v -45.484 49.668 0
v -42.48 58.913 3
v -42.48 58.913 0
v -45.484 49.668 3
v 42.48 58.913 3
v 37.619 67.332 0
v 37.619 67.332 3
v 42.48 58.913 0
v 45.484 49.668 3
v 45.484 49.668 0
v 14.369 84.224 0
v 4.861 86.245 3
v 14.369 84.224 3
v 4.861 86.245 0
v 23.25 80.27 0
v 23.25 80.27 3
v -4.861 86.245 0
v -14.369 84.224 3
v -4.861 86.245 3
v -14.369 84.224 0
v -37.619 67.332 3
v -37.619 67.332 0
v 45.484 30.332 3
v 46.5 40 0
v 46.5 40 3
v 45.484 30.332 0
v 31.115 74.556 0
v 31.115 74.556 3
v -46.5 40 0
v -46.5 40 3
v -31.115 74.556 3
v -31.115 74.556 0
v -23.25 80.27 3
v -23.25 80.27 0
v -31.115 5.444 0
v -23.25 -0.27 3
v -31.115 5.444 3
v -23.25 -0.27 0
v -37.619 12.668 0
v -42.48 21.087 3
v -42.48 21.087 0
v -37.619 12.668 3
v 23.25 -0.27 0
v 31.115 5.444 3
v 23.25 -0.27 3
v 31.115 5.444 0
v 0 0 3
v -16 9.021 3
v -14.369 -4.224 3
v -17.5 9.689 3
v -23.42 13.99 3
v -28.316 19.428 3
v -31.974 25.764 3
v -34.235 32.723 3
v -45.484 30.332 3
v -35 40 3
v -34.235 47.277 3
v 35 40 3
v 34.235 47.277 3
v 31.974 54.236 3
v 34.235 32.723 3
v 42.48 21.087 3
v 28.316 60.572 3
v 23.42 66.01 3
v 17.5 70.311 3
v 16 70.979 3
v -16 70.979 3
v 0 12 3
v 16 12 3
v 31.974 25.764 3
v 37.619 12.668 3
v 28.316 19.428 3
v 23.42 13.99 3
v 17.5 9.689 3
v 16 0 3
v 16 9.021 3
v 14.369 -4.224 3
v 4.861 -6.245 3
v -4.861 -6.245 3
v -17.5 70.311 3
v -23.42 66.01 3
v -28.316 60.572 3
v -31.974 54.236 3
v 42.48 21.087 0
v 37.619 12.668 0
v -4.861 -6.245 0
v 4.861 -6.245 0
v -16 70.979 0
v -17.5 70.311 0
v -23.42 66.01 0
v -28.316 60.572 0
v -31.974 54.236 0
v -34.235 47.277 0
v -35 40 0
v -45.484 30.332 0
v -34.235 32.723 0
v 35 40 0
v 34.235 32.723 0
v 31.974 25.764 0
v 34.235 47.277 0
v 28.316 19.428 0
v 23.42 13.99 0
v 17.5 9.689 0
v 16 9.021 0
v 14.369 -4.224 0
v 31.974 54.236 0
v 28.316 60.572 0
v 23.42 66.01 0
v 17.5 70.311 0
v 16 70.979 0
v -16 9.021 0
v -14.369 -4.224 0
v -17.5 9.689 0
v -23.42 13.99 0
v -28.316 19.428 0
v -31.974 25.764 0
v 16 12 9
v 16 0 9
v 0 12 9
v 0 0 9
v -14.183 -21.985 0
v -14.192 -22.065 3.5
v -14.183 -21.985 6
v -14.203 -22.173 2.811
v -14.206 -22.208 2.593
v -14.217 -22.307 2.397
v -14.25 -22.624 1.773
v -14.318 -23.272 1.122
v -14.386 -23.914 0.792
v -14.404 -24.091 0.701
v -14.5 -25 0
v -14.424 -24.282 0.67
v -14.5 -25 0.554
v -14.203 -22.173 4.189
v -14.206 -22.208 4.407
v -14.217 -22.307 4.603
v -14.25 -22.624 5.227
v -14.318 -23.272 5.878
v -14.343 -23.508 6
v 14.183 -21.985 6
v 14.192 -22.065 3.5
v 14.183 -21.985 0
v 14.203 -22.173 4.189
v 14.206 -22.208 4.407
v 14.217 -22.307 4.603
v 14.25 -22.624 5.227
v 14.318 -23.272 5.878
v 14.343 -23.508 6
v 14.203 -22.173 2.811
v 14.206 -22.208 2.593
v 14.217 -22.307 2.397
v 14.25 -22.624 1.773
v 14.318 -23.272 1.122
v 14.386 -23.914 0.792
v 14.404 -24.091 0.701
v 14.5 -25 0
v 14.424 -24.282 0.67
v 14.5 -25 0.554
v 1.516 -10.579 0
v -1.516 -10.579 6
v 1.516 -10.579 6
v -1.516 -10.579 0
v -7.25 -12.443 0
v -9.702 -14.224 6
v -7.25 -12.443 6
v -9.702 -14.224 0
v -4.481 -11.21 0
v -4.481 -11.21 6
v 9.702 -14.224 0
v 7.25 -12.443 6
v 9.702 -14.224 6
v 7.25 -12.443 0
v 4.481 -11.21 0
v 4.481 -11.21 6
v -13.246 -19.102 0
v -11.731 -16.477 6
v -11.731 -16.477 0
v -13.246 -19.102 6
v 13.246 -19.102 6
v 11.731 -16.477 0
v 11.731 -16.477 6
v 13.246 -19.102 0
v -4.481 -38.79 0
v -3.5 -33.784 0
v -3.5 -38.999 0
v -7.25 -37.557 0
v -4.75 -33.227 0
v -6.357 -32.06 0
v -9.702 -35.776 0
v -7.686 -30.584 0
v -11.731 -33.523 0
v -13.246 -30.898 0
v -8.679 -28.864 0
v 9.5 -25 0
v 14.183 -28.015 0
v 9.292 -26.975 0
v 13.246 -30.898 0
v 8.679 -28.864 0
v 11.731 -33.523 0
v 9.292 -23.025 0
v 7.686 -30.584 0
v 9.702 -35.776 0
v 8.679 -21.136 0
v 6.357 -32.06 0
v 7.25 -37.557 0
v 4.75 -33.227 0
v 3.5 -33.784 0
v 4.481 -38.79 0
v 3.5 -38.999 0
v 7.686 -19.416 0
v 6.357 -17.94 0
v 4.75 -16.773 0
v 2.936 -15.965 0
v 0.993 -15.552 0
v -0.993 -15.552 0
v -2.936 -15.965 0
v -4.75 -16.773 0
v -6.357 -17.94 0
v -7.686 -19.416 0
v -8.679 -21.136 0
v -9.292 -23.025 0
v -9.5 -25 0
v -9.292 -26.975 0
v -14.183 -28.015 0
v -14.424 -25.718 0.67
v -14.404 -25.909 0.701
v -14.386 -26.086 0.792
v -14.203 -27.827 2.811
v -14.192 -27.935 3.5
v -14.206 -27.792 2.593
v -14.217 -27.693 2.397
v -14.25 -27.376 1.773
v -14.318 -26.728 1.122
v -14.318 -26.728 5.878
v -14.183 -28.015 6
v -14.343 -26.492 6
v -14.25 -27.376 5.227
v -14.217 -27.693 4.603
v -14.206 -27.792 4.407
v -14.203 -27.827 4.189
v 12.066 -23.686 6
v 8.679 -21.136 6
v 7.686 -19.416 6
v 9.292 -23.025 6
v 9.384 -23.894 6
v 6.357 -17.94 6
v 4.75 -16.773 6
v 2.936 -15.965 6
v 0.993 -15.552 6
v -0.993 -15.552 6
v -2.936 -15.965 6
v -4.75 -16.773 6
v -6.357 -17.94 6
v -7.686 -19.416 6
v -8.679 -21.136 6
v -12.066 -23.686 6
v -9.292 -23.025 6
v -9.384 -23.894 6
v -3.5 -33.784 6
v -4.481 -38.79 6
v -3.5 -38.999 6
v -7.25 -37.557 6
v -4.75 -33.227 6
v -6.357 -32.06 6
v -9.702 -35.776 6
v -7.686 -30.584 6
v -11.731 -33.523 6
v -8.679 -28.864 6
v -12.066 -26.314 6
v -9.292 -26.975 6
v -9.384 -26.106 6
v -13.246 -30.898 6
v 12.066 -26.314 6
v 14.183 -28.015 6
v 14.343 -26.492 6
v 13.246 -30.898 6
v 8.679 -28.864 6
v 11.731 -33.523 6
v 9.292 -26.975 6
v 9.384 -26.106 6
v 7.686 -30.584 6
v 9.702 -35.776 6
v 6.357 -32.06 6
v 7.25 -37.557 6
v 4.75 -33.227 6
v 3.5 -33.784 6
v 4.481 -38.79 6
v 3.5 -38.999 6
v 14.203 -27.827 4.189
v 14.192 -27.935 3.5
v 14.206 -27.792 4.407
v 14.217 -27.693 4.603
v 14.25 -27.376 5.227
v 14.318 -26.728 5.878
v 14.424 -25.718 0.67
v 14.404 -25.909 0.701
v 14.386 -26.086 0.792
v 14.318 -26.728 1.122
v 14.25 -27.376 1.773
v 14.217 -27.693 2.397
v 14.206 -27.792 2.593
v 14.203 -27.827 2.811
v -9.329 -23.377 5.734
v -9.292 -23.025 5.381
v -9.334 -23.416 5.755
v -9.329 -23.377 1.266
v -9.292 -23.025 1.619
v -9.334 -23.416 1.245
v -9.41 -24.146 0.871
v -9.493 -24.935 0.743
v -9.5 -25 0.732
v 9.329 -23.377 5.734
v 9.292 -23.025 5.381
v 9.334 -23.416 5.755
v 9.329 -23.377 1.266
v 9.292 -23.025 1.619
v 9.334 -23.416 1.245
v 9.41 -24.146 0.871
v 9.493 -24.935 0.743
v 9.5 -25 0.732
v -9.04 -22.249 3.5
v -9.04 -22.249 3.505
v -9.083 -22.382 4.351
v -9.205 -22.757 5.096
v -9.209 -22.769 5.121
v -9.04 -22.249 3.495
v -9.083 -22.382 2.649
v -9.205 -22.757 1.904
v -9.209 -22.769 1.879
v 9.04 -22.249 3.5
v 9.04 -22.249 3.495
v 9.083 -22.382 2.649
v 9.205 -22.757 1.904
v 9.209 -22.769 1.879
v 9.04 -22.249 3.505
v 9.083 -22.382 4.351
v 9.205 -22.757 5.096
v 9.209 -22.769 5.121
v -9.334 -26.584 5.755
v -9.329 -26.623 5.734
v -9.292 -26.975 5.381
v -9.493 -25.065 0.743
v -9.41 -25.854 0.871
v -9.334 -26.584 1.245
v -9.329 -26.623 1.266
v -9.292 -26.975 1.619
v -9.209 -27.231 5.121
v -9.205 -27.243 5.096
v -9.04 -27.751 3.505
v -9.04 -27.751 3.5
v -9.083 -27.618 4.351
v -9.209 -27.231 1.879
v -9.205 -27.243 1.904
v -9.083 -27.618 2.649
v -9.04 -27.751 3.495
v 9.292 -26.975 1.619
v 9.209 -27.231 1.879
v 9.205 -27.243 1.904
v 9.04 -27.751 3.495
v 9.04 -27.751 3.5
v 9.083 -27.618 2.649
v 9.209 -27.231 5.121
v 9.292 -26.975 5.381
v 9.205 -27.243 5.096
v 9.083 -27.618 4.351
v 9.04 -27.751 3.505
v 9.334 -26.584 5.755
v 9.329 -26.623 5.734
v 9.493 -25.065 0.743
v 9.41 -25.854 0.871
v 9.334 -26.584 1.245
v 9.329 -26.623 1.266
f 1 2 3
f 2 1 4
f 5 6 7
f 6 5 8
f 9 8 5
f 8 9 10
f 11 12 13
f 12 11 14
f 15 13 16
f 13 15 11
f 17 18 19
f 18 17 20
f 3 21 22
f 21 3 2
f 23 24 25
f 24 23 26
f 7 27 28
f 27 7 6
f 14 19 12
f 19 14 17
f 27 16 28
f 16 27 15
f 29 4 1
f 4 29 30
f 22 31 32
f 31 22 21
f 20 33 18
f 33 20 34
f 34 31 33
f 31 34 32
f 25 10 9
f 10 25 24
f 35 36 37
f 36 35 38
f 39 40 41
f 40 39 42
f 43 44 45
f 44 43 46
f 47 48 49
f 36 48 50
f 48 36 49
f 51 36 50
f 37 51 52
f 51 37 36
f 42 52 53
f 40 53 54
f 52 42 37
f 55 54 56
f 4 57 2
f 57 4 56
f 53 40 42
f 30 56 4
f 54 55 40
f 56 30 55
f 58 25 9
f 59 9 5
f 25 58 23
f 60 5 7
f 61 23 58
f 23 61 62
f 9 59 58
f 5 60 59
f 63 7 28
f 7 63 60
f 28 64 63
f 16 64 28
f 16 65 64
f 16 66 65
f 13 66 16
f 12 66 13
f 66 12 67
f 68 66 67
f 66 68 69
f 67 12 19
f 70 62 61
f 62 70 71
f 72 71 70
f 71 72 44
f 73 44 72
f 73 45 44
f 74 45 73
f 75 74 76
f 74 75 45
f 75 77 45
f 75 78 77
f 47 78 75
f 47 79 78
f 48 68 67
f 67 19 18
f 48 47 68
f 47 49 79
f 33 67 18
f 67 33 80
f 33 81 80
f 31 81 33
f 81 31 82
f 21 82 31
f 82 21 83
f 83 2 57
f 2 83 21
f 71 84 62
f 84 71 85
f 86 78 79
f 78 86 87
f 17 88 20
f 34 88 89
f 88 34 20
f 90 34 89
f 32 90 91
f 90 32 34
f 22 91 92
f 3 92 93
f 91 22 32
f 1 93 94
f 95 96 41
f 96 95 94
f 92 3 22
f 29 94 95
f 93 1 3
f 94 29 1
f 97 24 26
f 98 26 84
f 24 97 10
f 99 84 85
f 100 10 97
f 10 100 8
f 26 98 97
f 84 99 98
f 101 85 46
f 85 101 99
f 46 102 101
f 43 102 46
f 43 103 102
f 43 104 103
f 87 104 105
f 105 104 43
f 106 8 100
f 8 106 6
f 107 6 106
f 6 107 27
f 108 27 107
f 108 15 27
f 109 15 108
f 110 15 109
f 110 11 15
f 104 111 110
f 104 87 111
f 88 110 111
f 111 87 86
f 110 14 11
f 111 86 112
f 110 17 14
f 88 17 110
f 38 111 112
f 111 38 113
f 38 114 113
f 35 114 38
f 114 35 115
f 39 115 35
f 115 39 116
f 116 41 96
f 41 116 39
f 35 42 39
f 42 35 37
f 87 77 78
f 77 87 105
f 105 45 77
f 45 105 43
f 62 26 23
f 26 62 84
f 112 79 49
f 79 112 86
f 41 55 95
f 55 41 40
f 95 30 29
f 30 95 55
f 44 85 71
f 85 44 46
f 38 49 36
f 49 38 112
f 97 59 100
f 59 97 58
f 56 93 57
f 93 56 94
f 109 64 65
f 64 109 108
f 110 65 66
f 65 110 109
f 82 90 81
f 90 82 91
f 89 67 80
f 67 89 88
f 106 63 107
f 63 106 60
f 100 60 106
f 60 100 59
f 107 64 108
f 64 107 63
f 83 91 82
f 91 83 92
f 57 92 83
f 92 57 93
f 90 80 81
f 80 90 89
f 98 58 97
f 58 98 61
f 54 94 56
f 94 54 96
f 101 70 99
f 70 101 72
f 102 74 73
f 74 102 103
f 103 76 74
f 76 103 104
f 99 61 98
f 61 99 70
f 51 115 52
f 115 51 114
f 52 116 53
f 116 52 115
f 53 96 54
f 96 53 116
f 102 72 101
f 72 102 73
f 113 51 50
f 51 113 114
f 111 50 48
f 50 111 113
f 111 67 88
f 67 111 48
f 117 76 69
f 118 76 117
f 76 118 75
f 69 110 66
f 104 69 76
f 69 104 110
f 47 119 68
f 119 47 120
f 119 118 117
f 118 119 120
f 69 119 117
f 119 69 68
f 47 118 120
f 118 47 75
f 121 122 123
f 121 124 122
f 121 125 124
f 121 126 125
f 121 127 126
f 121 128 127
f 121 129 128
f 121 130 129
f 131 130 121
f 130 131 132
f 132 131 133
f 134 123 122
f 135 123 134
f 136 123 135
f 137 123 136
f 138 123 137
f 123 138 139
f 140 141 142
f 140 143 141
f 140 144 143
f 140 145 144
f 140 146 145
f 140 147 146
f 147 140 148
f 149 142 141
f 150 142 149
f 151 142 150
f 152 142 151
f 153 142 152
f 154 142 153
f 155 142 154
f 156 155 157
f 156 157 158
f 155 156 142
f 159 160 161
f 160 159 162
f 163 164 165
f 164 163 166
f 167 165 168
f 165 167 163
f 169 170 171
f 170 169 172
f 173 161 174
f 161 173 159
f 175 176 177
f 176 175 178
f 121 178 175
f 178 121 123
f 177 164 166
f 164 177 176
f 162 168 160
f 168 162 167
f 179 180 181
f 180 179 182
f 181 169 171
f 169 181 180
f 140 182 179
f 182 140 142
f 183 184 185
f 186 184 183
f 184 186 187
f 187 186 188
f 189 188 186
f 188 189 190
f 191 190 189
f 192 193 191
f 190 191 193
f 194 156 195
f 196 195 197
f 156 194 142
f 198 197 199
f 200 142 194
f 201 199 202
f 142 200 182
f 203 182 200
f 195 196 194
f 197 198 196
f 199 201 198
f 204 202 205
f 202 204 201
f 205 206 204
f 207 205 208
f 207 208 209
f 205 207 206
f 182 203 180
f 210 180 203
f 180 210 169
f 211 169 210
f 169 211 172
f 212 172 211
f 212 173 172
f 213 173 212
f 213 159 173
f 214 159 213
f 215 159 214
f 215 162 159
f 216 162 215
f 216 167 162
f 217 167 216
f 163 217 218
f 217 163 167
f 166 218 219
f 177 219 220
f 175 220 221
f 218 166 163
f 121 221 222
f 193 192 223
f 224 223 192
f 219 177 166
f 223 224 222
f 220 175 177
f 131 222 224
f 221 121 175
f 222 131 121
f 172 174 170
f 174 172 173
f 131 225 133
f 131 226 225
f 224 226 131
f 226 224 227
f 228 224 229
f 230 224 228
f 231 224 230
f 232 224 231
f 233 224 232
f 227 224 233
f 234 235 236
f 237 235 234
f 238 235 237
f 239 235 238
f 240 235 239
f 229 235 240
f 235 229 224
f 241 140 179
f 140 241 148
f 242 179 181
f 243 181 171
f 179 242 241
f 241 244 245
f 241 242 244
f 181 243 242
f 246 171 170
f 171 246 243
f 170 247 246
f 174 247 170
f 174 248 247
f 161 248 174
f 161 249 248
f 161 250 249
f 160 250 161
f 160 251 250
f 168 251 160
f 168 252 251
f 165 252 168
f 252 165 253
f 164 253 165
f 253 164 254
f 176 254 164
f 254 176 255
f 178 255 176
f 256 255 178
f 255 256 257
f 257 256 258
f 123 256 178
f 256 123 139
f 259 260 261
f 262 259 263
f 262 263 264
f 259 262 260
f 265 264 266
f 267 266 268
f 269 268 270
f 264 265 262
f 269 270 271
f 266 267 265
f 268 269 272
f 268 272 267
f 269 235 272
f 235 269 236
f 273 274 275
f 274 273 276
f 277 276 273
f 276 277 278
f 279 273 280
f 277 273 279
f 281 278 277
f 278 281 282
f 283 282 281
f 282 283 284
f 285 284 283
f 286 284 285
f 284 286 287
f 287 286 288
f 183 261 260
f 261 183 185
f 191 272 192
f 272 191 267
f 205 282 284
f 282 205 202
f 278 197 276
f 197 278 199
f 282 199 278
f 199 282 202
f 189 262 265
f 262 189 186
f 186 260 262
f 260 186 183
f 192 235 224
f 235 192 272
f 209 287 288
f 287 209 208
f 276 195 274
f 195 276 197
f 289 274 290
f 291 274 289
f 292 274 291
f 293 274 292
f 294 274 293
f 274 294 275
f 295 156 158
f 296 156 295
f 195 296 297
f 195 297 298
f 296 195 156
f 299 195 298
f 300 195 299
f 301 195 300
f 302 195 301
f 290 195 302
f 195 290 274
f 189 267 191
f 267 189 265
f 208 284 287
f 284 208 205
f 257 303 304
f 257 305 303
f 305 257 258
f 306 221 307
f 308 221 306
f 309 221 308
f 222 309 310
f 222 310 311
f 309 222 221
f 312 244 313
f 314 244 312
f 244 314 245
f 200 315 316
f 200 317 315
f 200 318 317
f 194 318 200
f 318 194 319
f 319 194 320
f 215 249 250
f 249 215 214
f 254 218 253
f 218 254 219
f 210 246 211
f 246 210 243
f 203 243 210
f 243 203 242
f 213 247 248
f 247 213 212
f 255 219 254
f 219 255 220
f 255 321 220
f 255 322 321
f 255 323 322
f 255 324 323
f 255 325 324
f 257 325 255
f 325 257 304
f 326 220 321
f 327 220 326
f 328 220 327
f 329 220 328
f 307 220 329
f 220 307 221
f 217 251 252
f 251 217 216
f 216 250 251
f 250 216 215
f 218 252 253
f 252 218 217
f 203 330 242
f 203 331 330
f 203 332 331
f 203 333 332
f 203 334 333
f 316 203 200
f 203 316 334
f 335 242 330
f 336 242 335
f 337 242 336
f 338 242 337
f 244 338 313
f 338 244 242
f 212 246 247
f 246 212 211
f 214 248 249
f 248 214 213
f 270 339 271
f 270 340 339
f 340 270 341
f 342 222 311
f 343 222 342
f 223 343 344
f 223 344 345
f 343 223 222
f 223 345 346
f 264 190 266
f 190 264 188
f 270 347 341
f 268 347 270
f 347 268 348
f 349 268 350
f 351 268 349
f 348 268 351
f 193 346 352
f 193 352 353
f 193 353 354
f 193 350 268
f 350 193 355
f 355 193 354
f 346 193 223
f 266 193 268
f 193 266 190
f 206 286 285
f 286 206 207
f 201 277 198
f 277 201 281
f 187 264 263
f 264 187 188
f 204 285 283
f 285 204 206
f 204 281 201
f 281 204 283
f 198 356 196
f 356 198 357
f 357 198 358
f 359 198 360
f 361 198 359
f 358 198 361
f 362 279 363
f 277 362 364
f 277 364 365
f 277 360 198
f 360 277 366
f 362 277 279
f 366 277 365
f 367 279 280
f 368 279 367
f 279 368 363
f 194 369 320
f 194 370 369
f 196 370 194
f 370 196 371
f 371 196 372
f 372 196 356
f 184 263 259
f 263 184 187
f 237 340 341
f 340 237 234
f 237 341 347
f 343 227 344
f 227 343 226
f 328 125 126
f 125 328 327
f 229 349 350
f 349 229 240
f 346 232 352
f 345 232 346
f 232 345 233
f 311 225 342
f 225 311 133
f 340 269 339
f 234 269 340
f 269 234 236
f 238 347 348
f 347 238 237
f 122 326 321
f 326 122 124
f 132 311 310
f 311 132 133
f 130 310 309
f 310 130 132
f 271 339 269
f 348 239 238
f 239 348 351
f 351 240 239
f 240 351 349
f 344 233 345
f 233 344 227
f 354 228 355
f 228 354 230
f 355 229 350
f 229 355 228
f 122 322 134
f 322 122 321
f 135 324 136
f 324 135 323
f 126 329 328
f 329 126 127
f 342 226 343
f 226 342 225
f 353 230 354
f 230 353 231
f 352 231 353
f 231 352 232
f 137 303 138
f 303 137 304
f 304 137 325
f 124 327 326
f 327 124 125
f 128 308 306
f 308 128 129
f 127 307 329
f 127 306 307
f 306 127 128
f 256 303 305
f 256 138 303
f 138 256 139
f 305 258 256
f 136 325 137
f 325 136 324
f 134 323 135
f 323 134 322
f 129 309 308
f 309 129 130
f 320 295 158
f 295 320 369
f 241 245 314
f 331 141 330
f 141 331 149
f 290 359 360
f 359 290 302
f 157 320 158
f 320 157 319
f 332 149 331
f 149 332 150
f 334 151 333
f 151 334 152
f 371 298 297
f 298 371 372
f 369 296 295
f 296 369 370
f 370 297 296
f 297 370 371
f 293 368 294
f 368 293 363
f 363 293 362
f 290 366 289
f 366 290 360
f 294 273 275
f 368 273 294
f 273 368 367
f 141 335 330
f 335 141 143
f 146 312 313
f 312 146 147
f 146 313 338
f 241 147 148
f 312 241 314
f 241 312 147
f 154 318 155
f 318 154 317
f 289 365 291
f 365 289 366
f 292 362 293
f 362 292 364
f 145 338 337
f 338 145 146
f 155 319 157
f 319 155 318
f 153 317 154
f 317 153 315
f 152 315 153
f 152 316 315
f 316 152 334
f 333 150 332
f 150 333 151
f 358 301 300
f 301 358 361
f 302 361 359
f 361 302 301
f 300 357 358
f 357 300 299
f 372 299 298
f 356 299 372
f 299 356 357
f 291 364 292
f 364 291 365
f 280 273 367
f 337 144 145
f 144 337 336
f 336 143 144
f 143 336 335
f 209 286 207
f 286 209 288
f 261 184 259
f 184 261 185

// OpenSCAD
// servo

module servo(){
cube([12, 24, 24]);

translate([0, -4.15, 16])
    cube([12, 32.3, 2.4]);
    

translate([6, 6, 0])
    cylinder(32, 3, 3);
    

translate([3, 3, 30])
    cube([14, 6, 2]);
}



/*
translate([16, 0, 34])
rotate([270,0,90]) 
    servo();
*/


// servoHolder;

// cup
/*{translate([0, 50, 0])
difference(){
cylinder(71, d1 = 55, d2 = 93); 
cylinder(72, d1 = 53, d2 = 91); 
}*/


module servoStand(){
union(){
    // servo stand
     {cube([16,12, 5+4]);}

    // baseplate
    union(){
    translate([0, 40, 0])
        difference(){
        cylinder(3, d1 = 93, d2 = 93); 
        cylinder(5, d1 = 70, d2 = 70);}

    translate([32/2, -3, 0])
        rotate([0,0,90])
        cube([86, 32, 3]);
        
    }}}
servoStand();
    

// cover
/*
translate([0, 40, 0])
difference(){
    // outer diameter
    cylinder(40, d1 = 93, d2 = 93); 
    // inner dia.
    cylinder(55, d1 = 91, d2 = 91);
}
*/
    
// IR photogate -- glue to bottom of cup lid


// cut out 3mm rad circles
module photogateHolder(){
    union(){
difference(){
translate([0, 0, 50]){
    difference(){
        difference(){
    cylinder(6, d1 = 29, d2 = 29);
    cylinder(7, d1 = 19, d2 = 19);
    }
    
    translate([9, 0, 2.5])
    rotate([0, 90,0])
    cylinder(7, d1 = 5.5, d2 = 6, $fn=20);
    
    translate([-16, 0, 2.5])
    rotate([0, 90,0])
    cylinder(7, d1 = 6, d2 = 5.5, $fn=20);
    

}

};  
translate([-3.5, -15,50])
    cube([7,8,8]);

}
}
}

translate([0, -25, 56])
rotate([0, 180, 0])
photogateHolder();
